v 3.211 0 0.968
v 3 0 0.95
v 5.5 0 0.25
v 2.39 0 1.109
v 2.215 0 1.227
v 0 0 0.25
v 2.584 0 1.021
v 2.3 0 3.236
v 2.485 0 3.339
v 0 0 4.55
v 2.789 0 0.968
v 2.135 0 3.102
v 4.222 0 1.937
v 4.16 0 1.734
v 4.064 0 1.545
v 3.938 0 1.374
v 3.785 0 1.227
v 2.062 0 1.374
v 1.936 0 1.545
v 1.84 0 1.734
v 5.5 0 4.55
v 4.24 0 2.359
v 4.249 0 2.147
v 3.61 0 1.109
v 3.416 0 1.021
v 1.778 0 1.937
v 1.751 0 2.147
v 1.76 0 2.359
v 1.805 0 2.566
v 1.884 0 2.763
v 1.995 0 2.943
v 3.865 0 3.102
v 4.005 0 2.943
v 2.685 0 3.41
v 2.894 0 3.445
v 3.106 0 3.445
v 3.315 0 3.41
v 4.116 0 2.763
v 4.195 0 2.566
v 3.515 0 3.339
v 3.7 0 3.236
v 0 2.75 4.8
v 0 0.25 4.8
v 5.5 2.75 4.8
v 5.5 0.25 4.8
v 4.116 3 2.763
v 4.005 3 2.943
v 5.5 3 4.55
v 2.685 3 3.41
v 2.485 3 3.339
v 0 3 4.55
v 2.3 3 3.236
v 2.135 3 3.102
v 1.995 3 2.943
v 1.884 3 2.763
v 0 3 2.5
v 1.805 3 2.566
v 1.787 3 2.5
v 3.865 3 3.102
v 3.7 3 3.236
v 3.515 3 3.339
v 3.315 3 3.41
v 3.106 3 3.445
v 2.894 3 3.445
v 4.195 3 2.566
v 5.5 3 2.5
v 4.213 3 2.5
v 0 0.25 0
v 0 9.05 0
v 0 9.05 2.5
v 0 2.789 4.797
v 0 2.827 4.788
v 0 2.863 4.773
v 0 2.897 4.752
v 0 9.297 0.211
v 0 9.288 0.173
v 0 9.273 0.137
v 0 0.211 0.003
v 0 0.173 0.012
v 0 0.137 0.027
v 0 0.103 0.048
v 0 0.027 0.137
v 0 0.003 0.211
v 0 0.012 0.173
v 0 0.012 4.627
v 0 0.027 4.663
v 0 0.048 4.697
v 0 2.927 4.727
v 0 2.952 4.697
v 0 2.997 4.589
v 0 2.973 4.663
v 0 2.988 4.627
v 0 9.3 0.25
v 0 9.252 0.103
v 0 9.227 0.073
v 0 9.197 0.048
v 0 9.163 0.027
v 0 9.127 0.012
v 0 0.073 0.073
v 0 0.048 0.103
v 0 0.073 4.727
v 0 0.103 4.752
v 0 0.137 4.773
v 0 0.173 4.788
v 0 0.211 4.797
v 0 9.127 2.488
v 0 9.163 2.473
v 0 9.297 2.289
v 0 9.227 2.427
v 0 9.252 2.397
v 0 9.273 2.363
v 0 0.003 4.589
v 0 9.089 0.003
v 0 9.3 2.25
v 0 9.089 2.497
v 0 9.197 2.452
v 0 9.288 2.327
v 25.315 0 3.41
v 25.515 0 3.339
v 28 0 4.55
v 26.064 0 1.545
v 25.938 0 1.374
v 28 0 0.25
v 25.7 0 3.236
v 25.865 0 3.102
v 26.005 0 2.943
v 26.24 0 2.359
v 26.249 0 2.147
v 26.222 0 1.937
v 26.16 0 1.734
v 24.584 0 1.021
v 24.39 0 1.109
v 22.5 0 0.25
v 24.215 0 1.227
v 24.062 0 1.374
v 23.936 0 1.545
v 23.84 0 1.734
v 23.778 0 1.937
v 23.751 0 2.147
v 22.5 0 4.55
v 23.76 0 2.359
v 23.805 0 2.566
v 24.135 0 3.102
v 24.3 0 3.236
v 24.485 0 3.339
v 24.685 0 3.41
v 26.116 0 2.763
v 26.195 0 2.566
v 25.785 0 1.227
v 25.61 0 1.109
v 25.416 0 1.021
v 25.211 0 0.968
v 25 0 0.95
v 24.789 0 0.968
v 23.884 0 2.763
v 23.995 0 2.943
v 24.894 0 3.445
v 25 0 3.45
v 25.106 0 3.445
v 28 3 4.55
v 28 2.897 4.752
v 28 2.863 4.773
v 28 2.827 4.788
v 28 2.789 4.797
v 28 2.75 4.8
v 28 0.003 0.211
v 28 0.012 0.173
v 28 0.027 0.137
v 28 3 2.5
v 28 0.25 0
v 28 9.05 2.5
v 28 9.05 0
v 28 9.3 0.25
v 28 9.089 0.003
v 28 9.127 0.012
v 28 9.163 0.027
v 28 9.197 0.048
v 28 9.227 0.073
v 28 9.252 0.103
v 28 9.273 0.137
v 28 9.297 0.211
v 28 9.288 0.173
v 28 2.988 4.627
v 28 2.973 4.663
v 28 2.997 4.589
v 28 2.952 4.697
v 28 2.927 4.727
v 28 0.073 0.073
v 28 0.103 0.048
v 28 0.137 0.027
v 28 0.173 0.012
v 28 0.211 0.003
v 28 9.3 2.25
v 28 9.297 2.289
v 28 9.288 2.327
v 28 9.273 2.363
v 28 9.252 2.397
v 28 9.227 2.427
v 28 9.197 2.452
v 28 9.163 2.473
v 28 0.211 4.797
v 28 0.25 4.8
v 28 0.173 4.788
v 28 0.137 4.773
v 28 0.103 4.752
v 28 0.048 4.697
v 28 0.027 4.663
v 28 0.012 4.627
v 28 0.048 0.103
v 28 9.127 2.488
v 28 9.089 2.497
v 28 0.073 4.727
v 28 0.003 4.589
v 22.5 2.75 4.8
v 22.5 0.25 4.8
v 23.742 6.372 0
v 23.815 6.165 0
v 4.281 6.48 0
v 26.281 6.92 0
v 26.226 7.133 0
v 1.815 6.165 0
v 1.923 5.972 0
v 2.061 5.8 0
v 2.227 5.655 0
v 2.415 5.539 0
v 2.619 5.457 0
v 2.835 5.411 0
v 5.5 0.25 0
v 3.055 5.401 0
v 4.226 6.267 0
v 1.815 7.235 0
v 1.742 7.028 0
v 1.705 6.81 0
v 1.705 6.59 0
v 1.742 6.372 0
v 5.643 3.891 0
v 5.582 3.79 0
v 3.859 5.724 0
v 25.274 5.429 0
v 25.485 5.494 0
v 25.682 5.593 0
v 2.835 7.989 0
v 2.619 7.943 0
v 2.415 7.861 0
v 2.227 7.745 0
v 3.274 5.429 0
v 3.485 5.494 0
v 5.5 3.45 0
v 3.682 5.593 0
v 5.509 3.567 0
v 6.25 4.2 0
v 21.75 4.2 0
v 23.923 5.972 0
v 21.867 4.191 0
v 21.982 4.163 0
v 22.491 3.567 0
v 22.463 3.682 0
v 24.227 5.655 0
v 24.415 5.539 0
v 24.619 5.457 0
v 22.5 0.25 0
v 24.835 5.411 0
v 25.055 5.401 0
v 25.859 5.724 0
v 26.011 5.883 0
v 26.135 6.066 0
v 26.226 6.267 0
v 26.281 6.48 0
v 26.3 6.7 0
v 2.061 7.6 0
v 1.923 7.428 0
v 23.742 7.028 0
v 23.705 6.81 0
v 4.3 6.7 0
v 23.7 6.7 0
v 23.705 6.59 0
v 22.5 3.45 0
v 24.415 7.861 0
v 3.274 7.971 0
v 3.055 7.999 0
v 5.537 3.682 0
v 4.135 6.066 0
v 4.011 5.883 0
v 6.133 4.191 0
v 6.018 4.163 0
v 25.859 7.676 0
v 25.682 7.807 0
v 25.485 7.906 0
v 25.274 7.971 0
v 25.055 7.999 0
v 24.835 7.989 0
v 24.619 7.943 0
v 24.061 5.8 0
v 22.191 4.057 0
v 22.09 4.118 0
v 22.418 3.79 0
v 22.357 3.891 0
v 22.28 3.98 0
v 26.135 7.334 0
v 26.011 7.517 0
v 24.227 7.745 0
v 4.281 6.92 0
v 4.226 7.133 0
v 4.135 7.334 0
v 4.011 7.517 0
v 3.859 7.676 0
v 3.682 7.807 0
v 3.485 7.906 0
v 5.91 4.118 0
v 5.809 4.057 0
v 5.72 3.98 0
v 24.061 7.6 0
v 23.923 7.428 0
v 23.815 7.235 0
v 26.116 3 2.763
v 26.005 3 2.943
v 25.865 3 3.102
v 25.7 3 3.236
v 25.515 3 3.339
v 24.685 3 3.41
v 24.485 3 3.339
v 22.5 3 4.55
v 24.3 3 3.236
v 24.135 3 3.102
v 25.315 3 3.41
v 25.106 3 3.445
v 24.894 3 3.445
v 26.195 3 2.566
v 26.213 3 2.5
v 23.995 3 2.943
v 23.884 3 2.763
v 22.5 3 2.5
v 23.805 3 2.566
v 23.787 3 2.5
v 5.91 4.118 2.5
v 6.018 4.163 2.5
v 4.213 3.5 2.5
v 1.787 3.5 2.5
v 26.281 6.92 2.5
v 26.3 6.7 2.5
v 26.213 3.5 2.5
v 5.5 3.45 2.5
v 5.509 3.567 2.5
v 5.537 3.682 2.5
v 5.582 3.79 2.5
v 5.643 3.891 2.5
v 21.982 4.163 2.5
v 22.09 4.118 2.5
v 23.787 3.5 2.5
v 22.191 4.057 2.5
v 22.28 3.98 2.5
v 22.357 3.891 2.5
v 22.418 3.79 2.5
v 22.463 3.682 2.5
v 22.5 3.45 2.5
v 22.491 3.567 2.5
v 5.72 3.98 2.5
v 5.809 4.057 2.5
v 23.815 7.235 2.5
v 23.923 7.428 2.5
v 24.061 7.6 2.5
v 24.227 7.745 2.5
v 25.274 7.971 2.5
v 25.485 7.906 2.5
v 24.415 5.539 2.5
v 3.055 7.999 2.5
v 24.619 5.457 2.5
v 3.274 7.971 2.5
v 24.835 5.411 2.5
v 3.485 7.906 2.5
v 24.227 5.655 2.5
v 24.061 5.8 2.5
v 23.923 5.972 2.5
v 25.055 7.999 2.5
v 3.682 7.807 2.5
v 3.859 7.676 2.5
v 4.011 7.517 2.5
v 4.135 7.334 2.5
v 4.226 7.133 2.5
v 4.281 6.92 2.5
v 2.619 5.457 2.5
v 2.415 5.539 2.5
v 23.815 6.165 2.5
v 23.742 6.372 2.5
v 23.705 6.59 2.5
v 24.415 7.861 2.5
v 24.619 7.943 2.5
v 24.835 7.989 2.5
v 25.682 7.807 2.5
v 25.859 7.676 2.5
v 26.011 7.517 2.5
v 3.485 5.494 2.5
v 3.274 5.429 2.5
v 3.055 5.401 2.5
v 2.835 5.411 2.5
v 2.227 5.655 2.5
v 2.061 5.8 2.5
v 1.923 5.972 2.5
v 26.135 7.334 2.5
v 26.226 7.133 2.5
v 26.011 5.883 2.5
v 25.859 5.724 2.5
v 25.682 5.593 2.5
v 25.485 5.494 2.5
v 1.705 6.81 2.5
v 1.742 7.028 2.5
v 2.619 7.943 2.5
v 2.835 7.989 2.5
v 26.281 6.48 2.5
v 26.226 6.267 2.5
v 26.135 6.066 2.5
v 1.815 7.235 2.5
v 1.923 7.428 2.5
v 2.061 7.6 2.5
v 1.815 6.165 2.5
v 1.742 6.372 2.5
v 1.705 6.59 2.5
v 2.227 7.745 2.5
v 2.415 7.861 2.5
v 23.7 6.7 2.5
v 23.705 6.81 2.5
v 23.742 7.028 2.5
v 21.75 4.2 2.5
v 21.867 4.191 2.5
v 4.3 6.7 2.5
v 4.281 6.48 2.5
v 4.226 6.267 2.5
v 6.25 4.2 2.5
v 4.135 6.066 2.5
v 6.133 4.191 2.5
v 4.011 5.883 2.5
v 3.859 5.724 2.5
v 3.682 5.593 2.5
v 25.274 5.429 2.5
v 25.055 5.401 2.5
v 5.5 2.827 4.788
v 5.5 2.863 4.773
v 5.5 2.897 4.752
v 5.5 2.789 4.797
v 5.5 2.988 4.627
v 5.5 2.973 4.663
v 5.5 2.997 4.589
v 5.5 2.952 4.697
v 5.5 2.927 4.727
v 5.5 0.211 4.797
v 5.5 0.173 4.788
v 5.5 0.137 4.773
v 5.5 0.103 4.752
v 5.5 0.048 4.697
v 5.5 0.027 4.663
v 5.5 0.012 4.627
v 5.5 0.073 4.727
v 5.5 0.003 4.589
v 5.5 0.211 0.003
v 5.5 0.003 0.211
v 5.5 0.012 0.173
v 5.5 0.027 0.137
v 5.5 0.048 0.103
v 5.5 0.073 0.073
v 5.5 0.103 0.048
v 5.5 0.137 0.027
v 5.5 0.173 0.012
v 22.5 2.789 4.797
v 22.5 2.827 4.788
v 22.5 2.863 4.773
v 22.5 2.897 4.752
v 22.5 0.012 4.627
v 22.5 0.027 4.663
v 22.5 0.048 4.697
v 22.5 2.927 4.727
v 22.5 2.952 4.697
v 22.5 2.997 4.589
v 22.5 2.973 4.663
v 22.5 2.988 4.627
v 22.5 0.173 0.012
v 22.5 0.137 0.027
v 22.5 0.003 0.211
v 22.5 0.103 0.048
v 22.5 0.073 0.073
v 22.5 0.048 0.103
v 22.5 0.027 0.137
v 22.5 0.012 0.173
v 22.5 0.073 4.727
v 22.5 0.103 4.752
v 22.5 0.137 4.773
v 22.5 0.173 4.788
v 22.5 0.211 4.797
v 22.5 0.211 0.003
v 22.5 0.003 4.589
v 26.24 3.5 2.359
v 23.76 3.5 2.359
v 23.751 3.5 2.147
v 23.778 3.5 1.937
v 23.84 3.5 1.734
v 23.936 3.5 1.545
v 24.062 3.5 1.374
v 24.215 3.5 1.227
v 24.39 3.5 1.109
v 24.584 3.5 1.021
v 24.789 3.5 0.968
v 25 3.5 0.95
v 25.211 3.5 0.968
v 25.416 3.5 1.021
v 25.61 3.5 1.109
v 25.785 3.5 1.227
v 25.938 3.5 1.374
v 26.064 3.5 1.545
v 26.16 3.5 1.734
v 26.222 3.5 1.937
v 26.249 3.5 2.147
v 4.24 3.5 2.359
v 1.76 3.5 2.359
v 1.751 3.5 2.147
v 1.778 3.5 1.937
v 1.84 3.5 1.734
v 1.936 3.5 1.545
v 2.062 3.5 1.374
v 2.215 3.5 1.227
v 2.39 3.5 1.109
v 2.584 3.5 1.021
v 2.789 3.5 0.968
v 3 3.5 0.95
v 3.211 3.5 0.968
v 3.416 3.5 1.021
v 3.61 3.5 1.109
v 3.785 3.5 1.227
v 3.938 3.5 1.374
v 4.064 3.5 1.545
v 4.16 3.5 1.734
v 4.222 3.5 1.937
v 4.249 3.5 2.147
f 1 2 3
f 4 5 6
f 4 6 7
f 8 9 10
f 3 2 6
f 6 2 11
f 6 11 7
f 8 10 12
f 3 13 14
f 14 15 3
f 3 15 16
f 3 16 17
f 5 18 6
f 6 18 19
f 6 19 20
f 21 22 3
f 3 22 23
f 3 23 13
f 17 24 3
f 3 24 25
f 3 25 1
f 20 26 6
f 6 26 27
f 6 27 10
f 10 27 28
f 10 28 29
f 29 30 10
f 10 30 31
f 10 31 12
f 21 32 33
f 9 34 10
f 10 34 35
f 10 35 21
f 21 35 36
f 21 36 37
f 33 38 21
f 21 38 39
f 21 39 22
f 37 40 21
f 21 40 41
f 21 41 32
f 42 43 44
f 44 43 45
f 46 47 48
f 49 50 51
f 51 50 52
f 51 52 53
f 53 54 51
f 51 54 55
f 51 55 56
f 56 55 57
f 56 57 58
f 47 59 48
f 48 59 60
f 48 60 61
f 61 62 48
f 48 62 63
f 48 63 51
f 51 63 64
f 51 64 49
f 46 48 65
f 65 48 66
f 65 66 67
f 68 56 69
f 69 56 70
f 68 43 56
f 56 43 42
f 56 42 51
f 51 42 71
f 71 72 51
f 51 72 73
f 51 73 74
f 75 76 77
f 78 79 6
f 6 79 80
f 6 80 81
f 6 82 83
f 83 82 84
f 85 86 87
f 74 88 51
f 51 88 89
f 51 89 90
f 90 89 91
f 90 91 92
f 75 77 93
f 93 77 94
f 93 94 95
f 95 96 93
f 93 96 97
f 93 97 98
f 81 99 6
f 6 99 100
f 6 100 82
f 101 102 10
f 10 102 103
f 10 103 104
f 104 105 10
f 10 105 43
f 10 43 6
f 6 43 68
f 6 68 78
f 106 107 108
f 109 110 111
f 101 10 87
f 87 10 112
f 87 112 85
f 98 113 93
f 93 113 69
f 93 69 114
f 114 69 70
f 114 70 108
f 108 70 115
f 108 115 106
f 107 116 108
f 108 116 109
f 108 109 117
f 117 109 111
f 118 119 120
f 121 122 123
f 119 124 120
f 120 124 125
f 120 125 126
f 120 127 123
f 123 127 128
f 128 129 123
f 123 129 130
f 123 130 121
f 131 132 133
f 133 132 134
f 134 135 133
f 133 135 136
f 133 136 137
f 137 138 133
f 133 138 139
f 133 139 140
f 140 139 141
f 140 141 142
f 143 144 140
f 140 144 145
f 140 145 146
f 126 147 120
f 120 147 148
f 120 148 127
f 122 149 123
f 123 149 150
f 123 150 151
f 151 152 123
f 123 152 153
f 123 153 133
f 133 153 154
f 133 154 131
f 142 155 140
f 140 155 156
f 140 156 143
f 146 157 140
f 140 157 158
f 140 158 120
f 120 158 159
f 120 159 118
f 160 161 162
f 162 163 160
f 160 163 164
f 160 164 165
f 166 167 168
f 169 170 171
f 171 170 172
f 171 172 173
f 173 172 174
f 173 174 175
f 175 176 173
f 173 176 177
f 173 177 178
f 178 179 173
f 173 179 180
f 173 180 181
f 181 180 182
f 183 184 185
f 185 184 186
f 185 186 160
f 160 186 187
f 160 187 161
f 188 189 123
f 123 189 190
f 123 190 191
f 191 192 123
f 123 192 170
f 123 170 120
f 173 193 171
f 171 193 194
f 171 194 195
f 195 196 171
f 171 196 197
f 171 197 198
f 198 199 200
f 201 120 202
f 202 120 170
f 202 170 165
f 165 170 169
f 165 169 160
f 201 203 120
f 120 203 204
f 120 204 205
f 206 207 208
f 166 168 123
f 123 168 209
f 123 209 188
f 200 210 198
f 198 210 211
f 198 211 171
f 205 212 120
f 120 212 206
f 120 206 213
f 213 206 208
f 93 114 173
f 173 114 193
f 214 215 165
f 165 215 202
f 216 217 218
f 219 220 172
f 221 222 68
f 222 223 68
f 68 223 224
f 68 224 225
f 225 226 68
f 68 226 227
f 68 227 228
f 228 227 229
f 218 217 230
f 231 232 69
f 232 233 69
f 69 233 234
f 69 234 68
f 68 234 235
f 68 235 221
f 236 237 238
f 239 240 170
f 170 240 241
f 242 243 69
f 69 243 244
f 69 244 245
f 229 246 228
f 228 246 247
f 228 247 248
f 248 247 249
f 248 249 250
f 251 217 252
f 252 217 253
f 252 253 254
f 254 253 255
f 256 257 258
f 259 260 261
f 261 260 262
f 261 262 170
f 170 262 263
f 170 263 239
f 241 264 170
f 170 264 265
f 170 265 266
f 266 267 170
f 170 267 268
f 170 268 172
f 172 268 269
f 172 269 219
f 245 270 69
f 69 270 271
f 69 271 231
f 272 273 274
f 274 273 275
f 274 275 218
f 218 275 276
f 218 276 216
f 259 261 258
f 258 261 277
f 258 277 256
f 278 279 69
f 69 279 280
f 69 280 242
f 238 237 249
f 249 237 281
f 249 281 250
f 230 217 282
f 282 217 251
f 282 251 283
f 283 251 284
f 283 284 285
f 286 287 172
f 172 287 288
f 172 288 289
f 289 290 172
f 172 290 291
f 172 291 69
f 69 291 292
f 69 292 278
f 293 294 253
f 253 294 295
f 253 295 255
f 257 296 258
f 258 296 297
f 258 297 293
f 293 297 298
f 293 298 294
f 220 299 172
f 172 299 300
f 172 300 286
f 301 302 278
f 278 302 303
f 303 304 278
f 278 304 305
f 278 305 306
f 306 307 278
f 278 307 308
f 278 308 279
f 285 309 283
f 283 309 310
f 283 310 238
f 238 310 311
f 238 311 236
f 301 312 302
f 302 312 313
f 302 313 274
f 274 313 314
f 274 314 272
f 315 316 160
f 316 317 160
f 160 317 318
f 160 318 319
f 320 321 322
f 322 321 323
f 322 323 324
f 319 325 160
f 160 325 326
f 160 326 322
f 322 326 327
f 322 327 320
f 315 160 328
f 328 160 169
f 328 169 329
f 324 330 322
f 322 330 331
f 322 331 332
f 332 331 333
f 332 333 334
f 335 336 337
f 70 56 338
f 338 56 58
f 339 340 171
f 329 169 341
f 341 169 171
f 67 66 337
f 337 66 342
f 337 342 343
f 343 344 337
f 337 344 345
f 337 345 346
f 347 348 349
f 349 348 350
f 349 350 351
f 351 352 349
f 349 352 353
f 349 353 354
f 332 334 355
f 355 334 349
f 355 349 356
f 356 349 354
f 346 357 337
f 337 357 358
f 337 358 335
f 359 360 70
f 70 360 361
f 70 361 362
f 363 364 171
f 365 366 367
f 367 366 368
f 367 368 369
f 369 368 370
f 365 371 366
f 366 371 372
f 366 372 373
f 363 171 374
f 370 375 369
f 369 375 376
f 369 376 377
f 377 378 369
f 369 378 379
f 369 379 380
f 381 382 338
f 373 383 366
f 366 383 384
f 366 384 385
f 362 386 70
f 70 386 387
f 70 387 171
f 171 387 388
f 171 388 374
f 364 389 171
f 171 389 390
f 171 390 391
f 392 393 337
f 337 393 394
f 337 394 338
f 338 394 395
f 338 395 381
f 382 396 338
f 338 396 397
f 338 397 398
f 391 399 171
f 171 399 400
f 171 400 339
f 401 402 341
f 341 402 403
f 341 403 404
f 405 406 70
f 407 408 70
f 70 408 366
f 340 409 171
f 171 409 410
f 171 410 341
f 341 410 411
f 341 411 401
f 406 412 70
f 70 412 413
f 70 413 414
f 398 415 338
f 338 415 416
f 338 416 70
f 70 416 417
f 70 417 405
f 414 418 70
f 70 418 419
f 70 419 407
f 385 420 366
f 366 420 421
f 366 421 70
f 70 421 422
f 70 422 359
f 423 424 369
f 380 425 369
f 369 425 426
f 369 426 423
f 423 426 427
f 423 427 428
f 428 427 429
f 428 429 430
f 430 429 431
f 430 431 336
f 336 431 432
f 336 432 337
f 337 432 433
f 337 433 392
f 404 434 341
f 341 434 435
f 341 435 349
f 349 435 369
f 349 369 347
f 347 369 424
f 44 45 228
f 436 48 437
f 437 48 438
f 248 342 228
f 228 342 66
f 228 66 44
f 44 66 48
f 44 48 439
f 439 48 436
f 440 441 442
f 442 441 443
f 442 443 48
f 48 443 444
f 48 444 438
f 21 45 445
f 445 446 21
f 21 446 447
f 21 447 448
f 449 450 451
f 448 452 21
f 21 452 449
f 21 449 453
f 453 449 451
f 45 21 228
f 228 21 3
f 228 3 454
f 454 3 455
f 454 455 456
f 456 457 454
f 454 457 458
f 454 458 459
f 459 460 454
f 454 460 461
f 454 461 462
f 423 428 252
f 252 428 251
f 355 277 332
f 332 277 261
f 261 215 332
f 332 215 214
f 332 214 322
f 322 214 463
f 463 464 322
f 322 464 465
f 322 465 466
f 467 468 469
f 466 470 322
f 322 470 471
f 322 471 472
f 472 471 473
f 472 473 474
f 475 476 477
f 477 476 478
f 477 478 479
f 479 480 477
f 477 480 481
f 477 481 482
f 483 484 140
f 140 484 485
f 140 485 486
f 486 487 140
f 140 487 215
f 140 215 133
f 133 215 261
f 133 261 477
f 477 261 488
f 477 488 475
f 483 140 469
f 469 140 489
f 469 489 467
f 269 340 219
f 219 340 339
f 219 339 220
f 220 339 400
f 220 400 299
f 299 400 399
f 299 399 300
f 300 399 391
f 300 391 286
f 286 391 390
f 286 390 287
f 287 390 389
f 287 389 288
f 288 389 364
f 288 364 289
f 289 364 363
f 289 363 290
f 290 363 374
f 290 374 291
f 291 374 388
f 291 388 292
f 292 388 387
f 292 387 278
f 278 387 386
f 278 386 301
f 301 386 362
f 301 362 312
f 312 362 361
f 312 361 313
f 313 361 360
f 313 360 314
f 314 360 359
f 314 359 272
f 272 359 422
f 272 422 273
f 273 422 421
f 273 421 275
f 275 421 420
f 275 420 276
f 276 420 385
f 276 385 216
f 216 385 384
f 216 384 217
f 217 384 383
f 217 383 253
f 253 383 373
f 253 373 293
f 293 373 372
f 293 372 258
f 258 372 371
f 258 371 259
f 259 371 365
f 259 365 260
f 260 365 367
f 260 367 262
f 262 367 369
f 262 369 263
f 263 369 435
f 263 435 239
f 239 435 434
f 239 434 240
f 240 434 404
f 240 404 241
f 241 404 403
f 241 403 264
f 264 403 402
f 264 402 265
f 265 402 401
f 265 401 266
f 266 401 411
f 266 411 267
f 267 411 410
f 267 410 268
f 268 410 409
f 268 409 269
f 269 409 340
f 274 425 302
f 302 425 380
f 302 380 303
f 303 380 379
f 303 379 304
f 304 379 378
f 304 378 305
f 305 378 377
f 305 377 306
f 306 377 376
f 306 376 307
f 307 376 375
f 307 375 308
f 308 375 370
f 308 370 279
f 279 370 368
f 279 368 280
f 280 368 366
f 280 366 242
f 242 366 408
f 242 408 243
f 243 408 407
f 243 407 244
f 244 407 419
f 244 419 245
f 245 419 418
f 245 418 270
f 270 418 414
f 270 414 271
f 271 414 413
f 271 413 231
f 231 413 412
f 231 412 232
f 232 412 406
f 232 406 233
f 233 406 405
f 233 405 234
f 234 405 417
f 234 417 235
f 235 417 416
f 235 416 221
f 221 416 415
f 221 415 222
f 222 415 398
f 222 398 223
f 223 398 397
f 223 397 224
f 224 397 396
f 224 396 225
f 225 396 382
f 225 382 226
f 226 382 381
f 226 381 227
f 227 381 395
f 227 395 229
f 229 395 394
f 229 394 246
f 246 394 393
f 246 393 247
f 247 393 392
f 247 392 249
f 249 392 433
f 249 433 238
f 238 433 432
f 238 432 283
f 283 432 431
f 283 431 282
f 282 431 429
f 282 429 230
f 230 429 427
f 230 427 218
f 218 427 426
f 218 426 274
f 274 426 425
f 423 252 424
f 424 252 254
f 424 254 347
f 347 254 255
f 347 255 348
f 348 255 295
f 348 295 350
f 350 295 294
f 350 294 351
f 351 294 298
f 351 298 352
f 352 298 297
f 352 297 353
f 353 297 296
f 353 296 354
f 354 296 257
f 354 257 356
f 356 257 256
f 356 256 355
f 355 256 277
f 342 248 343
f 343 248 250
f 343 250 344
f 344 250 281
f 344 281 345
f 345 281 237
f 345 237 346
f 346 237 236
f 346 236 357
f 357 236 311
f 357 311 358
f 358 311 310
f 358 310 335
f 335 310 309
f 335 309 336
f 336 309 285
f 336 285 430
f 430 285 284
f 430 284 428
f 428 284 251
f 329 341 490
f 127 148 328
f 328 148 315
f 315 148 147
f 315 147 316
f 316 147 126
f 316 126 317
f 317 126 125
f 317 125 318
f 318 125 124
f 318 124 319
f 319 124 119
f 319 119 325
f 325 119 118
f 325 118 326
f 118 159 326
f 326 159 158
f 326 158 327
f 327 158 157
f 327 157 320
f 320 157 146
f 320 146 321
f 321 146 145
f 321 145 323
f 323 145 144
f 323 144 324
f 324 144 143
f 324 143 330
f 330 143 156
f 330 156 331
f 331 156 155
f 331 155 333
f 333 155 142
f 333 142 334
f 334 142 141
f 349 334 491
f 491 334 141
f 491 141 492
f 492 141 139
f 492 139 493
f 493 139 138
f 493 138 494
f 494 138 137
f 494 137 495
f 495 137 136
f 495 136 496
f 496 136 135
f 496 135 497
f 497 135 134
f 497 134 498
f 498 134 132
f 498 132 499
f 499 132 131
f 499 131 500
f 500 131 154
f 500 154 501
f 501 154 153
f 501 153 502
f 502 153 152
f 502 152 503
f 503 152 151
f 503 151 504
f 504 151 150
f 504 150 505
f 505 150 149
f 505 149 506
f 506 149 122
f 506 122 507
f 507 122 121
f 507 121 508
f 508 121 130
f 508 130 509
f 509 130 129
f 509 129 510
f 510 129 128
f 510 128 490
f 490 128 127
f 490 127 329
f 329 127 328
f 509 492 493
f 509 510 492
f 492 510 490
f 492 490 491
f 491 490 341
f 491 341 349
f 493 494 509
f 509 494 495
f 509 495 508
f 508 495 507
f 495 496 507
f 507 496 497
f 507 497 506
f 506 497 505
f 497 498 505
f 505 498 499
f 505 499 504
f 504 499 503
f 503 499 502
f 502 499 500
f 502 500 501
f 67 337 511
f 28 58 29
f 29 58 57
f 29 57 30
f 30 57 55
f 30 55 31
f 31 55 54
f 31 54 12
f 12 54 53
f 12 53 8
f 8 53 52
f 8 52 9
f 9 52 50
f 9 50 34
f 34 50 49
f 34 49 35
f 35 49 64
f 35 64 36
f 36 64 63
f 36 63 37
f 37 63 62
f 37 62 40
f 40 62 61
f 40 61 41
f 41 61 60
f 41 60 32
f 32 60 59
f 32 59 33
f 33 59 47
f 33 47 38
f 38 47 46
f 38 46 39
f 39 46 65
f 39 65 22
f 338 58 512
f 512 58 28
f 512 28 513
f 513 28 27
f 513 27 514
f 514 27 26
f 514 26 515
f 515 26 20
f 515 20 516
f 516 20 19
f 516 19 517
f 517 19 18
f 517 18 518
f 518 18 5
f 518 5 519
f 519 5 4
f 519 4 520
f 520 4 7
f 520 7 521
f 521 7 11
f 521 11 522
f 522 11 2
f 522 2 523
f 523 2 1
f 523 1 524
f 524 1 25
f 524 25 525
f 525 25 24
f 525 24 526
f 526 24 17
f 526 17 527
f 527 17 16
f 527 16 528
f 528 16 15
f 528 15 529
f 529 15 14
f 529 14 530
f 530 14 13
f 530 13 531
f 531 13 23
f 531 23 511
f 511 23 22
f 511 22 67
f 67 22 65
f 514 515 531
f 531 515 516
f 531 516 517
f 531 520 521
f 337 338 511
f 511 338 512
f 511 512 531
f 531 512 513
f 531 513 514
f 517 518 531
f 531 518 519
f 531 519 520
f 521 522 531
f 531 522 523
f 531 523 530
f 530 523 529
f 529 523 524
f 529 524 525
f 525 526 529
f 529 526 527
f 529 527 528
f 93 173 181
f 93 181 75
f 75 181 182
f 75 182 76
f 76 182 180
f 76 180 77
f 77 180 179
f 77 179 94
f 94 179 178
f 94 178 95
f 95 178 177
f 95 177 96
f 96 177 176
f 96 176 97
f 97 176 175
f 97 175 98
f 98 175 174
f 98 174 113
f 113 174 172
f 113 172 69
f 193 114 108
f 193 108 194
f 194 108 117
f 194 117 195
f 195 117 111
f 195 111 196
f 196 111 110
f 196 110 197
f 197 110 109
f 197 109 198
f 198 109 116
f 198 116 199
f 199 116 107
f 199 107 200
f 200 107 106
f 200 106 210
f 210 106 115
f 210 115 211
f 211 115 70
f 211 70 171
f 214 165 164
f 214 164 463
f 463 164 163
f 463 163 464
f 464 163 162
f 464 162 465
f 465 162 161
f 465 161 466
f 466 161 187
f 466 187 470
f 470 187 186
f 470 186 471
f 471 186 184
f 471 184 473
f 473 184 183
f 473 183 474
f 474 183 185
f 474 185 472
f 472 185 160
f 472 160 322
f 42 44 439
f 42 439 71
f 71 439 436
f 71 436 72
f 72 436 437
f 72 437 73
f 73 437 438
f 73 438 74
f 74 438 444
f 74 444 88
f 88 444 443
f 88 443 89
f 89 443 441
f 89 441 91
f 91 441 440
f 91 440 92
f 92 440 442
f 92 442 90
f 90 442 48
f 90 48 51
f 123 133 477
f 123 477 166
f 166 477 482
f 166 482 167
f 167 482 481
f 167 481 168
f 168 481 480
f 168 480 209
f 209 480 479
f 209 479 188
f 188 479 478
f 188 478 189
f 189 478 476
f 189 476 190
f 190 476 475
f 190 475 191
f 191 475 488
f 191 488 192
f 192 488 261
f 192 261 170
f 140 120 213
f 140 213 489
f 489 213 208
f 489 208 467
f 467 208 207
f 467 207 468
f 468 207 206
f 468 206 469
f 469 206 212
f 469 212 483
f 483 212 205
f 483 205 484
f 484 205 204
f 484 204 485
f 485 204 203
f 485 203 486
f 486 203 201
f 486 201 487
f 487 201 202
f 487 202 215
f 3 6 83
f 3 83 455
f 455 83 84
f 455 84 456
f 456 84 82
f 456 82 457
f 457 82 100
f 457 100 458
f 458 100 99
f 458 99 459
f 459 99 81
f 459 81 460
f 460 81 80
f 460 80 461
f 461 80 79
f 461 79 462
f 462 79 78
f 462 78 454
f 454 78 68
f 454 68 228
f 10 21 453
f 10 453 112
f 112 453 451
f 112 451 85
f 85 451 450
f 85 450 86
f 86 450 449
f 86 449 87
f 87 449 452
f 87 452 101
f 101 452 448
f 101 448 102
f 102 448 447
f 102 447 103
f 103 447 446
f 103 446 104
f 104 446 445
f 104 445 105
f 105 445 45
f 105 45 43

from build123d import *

# Parameters (mm, degrees)
SKETCH_1_W               = 28
SKETCH_1_H               = 9.3
EXTRUDE_1_DEPTH          = 4.8
SKETCH_2_W               = 28
SKETCH_2_H               = 6.3
CUT_EXTRUDE_1_DEPTH      = 2.3
SKETCH_4_W               = 17
SKETCH_4_H               = 4.2
CUT_EXTRUDE_2_DEPTH      = 1
CUT_EXTRUDE_2_DEPTH_BACK = 5.8
SKETCH_5_R               = 1.3
CUT_EXTRUDE_3_DEPTH      = 3.5
FILLET_1_R               = 0.75
SKETCH_6_R               = 1.25
CUT_EXTRUDE_4_DEPTH      = 3.5
FILLET_2_R               = 0.25


with BuildPart() as part:
    # 스케치1 → 보스-돌출1 (new body)
    with BuildSketch(Plane.XY):
        with Locations((14, 4.65)):
            Rectangle(SKETCH_1_W, SKETCH_1_H)
    extrude(amount=EXTRUDE_1_DEPTH)

    # 스케치2 → 컷-돌출1 (cut)
    with BuildSketch(Plane.XY.offset(4.8)):
        with Locations((14, 6.15)):
            Rectangle(SKETCH_2_W, SKETCH_2_H)
    extrude(amount=-CUT_EXTRUDE_1_DEPTH, mode=Mode.SUBTRACT)

    # 스케치4 → 컷-돌출2 (cut, two sides)
    with BuildSketch(Plane.XY.offset(4.8)) as cut_extrude_2_sk:
        with Locations((14, 2.1)):
            Rectangle(SKETCH_4_W, SKETCH_4_H)
    extrude(amount=CUT_EXTRUDE_2_DEPTH, mode=Mode.SUBTRACT)
    extrude(cut_extrude_2_sk.sketch, amount=-CUT_EXTRUDE_2_DEPTH_BACK, mode=Mode.SUBTRACT)

    # 스케치5 → 컷-돌출3 (cut, through all)
    with BuildSketch(Plane.XY.offset(2.5)):
        with Locations((3, 6.7)):
            Circle(SKETCH_5_R)
        with Locations((25, 6.7)):
            Circle(SKETCH_5_R)
    extrude(amount=-CUT_EXTRUDE_3_DEPTH, mode=Mode.SUBTRACT)

    # 필렛1
    fillet_1_edges = [part.edges().sort_by_distance(p)[0] for p in [
        (5.5, 4.2, 1.25),
        (22.5, 4.2, 1.25),
    ]]
    fillet(fillet_1_edges, radius=FILLET_1_R)

    # 스케치6 → 컷-돌출4 (cut)
    with BuildSketch(Plane.XZ):
        with Locations((3, 2.2)):
            Circle(SKETCH_6_R)
        with Locations((25, 2.2)):
            Circle(SKETCH_6_R)
    extrude(amount=-CUT_EXTRUDE_4_DEPTH, mode=Mode.SUBTRACT)

    # 필렛2
    fillet_2_edges = [part.edges().sort_by_distance(p)[0] for p in [
        (14, 9.3, 2.5),
        (2.75, 3, 4.8),
        (25.25, 3, 4.8),
        (25.25, 0, 0),
        (25.25, 0, 4.8),
        (14, 9.3, 0),
        (2.75, 0, 0),
        (2.75, 0, 4.8),
    ]]
    fillet(fillet_2_edges, radius=FILLET_2_R)


solid = part.part
